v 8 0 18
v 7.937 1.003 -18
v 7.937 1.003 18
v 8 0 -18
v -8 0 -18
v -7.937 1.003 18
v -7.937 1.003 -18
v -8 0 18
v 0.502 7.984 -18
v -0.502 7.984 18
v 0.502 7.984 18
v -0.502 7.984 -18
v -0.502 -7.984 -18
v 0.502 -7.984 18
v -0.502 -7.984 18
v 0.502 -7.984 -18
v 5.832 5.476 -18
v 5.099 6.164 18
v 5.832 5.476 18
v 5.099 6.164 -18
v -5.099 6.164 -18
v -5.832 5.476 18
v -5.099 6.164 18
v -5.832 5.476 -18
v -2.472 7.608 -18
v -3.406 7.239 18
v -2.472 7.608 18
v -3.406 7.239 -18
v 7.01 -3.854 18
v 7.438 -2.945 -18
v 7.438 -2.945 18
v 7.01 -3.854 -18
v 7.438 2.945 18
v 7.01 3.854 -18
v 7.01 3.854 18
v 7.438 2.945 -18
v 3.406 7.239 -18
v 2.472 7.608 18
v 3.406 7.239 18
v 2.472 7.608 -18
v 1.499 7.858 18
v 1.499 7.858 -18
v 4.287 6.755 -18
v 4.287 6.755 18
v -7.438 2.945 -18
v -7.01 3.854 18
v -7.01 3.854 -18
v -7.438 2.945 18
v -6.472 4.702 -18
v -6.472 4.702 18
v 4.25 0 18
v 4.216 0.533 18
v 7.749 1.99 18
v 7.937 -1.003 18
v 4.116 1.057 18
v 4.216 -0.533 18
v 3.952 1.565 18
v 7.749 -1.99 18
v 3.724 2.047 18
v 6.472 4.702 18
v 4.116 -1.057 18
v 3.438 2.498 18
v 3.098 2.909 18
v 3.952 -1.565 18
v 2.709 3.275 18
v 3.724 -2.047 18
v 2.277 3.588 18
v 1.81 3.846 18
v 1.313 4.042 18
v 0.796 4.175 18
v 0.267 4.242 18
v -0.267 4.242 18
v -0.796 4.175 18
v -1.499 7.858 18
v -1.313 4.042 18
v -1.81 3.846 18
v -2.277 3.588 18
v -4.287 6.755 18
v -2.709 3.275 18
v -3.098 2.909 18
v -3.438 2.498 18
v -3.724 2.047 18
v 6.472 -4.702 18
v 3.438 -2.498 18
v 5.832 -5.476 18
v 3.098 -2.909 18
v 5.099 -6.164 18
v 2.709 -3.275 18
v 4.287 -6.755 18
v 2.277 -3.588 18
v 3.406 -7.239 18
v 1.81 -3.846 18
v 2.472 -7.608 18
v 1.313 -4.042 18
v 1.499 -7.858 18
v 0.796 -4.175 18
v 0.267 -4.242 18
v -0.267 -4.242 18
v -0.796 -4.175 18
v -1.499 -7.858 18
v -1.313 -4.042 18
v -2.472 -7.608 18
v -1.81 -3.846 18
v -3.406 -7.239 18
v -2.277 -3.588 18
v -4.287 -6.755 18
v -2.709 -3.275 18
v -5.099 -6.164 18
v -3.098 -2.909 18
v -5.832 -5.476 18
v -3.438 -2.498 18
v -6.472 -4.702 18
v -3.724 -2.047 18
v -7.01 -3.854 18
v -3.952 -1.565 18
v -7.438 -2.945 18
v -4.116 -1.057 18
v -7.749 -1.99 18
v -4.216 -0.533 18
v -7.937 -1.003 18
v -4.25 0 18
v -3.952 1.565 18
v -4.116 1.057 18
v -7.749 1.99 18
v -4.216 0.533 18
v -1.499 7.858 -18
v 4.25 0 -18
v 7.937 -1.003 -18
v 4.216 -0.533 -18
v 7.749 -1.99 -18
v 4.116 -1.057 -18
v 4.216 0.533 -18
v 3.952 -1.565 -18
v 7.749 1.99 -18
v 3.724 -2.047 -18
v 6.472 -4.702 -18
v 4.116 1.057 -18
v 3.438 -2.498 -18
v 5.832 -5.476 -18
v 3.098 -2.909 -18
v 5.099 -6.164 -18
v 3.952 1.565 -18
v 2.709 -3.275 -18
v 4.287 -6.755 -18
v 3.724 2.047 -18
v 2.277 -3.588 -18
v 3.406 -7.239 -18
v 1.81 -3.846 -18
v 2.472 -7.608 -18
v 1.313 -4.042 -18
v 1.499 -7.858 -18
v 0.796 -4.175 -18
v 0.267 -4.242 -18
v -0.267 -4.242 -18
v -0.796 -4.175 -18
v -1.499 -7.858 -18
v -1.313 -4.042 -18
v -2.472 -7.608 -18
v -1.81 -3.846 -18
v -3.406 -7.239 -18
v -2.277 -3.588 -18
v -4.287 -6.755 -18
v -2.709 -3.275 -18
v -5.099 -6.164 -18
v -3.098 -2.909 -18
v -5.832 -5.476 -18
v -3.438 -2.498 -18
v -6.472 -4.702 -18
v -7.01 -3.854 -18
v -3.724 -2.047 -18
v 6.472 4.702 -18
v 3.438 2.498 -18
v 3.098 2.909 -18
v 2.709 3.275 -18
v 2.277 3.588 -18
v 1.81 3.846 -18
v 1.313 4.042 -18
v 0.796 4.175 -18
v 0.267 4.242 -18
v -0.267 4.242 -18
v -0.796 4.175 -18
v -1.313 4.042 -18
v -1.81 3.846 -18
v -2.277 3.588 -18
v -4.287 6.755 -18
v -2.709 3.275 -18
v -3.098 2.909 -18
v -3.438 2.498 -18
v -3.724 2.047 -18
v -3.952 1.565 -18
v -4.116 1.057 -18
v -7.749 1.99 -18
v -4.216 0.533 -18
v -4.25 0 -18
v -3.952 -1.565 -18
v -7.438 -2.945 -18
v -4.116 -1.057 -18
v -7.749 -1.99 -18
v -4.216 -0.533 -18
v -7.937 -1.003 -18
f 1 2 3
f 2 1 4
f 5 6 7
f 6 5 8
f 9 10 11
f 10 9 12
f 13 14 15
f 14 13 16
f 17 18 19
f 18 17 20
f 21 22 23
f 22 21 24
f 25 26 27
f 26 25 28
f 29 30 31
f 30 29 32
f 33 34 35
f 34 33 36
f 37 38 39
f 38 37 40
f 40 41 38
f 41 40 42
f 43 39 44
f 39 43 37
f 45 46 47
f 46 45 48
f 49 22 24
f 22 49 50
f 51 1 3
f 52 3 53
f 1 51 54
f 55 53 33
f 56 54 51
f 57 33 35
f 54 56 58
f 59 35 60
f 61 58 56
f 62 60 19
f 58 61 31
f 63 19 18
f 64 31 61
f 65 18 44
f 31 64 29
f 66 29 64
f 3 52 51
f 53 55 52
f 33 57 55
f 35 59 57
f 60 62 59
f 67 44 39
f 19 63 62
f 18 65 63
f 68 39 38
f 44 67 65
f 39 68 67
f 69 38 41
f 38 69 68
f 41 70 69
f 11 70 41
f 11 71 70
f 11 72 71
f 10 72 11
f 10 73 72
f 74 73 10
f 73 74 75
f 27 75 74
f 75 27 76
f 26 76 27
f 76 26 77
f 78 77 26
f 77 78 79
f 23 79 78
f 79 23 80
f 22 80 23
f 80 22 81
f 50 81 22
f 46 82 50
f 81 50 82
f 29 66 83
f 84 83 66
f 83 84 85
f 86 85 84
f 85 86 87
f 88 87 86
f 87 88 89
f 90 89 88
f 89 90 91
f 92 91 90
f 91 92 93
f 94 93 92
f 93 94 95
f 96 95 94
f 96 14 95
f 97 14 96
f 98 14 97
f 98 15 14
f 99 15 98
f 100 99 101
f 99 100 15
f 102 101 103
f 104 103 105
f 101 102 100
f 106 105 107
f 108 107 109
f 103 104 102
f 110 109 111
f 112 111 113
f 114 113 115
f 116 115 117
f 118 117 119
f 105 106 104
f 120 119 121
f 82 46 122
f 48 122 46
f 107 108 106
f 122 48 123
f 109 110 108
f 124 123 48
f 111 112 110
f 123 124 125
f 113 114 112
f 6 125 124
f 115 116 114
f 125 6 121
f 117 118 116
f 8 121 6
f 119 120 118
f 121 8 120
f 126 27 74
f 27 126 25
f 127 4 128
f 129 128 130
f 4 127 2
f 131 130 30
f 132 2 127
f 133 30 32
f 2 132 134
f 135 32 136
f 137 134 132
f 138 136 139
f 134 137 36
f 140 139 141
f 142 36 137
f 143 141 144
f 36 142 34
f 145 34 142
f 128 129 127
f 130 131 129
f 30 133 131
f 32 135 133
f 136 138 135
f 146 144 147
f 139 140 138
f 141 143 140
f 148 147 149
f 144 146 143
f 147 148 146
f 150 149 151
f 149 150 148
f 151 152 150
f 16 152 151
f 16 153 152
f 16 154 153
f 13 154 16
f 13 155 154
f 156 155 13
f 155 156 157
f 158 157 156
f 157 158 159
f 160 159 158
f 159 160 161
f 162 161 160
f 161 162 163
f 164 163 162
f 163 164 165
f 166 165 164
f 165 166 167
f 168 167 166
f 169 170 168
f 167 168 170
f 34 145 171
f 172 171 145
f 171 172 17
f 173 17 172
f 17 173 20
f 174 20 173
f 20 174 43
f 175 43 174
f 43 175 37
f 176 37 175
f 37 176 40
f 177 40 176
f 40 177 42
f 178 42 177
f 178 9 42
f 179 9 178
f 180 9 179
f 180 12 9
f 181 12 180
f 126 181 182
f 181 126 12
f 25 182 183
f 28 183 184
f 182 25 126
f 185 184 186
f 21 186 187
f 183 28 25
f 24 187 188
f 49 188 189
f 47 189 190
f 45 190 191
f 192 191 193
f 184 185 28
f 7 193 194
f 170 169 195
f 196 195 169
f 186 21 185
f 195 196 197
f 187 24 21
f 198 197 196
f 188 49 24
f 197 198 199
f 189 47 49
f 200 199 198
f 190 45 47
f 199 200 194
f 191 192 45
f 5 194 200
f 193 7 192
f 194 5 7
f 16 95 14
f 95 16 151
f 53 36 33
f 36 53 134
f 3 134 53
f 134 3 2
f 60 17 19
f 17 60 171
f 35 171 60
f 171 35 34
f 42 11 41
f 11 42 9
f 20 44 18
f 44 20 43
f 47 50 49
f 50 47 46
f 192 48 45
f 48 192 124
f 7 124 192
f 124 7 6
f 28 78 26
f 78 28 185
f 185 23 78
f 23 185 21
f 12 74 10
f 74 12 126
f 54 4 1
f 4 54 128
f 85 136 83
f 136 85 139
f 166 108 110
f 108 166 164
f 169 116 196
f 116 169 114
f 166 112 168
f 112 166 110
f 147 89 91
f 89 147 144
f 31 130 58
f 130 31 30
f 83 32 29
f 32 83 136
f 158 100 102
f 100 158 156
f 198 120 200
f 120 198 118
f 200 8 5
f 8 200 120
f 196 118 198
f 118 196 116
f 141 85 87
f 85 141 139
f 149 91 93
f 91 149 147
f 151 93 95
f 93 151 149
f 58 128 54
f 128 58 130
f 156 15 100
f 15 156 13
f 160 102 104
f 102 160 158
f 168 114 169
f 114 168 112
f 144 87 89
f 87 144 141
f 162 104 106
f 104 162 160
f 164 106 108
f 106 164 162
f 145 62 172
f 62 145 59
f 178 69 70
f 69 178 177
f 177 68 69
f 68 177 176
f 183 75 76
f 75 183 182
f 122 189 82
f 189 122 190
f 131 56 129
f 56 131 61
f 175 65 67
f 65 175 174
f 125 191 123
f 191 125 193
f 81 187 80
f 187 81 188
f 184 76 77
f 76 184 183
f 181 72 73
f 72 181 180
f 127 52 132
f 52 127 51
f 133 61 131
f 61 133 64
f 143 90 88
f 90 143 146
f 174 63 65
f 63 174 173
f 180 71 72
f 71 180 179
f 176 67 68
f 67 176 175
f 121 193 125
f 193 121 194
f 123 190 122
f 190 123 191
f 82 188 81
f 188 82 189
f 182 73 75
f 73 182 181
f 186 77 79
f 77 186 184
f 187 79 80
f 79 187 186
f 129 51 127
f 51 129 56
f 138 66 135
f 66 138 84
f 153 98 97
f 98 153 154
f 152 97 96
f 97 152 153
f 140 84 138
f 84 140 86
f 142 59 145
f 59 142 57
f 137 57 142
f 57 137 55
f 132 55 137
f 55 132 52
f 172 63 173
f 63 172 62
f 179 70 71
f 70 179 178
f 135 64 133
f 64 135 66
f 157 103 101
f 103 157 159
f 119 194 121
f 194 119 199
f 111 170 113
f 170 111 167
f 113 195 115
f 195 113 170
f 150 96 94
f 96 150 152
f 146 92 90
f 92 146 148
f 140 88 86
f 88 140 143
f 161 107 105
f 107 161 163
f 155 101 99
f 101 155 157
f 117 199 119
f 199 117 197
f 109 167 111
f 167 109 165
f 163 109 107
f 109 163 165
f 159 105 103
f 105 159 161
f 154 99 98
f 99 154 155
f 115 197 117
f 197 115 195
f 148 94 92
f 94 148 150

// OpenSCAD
$fn = 50;


difference() {
	union() {
		translate(v = [0, 0, -18.0000000000]) {
			cylinder(h = 36, r = 8.0000000000);
		}
	}
	union() {
		translate(v = [0, 0, -100.0000000000]) {
			cylinder(h = 200, r = 4.2500000000);
		}
	}
}
